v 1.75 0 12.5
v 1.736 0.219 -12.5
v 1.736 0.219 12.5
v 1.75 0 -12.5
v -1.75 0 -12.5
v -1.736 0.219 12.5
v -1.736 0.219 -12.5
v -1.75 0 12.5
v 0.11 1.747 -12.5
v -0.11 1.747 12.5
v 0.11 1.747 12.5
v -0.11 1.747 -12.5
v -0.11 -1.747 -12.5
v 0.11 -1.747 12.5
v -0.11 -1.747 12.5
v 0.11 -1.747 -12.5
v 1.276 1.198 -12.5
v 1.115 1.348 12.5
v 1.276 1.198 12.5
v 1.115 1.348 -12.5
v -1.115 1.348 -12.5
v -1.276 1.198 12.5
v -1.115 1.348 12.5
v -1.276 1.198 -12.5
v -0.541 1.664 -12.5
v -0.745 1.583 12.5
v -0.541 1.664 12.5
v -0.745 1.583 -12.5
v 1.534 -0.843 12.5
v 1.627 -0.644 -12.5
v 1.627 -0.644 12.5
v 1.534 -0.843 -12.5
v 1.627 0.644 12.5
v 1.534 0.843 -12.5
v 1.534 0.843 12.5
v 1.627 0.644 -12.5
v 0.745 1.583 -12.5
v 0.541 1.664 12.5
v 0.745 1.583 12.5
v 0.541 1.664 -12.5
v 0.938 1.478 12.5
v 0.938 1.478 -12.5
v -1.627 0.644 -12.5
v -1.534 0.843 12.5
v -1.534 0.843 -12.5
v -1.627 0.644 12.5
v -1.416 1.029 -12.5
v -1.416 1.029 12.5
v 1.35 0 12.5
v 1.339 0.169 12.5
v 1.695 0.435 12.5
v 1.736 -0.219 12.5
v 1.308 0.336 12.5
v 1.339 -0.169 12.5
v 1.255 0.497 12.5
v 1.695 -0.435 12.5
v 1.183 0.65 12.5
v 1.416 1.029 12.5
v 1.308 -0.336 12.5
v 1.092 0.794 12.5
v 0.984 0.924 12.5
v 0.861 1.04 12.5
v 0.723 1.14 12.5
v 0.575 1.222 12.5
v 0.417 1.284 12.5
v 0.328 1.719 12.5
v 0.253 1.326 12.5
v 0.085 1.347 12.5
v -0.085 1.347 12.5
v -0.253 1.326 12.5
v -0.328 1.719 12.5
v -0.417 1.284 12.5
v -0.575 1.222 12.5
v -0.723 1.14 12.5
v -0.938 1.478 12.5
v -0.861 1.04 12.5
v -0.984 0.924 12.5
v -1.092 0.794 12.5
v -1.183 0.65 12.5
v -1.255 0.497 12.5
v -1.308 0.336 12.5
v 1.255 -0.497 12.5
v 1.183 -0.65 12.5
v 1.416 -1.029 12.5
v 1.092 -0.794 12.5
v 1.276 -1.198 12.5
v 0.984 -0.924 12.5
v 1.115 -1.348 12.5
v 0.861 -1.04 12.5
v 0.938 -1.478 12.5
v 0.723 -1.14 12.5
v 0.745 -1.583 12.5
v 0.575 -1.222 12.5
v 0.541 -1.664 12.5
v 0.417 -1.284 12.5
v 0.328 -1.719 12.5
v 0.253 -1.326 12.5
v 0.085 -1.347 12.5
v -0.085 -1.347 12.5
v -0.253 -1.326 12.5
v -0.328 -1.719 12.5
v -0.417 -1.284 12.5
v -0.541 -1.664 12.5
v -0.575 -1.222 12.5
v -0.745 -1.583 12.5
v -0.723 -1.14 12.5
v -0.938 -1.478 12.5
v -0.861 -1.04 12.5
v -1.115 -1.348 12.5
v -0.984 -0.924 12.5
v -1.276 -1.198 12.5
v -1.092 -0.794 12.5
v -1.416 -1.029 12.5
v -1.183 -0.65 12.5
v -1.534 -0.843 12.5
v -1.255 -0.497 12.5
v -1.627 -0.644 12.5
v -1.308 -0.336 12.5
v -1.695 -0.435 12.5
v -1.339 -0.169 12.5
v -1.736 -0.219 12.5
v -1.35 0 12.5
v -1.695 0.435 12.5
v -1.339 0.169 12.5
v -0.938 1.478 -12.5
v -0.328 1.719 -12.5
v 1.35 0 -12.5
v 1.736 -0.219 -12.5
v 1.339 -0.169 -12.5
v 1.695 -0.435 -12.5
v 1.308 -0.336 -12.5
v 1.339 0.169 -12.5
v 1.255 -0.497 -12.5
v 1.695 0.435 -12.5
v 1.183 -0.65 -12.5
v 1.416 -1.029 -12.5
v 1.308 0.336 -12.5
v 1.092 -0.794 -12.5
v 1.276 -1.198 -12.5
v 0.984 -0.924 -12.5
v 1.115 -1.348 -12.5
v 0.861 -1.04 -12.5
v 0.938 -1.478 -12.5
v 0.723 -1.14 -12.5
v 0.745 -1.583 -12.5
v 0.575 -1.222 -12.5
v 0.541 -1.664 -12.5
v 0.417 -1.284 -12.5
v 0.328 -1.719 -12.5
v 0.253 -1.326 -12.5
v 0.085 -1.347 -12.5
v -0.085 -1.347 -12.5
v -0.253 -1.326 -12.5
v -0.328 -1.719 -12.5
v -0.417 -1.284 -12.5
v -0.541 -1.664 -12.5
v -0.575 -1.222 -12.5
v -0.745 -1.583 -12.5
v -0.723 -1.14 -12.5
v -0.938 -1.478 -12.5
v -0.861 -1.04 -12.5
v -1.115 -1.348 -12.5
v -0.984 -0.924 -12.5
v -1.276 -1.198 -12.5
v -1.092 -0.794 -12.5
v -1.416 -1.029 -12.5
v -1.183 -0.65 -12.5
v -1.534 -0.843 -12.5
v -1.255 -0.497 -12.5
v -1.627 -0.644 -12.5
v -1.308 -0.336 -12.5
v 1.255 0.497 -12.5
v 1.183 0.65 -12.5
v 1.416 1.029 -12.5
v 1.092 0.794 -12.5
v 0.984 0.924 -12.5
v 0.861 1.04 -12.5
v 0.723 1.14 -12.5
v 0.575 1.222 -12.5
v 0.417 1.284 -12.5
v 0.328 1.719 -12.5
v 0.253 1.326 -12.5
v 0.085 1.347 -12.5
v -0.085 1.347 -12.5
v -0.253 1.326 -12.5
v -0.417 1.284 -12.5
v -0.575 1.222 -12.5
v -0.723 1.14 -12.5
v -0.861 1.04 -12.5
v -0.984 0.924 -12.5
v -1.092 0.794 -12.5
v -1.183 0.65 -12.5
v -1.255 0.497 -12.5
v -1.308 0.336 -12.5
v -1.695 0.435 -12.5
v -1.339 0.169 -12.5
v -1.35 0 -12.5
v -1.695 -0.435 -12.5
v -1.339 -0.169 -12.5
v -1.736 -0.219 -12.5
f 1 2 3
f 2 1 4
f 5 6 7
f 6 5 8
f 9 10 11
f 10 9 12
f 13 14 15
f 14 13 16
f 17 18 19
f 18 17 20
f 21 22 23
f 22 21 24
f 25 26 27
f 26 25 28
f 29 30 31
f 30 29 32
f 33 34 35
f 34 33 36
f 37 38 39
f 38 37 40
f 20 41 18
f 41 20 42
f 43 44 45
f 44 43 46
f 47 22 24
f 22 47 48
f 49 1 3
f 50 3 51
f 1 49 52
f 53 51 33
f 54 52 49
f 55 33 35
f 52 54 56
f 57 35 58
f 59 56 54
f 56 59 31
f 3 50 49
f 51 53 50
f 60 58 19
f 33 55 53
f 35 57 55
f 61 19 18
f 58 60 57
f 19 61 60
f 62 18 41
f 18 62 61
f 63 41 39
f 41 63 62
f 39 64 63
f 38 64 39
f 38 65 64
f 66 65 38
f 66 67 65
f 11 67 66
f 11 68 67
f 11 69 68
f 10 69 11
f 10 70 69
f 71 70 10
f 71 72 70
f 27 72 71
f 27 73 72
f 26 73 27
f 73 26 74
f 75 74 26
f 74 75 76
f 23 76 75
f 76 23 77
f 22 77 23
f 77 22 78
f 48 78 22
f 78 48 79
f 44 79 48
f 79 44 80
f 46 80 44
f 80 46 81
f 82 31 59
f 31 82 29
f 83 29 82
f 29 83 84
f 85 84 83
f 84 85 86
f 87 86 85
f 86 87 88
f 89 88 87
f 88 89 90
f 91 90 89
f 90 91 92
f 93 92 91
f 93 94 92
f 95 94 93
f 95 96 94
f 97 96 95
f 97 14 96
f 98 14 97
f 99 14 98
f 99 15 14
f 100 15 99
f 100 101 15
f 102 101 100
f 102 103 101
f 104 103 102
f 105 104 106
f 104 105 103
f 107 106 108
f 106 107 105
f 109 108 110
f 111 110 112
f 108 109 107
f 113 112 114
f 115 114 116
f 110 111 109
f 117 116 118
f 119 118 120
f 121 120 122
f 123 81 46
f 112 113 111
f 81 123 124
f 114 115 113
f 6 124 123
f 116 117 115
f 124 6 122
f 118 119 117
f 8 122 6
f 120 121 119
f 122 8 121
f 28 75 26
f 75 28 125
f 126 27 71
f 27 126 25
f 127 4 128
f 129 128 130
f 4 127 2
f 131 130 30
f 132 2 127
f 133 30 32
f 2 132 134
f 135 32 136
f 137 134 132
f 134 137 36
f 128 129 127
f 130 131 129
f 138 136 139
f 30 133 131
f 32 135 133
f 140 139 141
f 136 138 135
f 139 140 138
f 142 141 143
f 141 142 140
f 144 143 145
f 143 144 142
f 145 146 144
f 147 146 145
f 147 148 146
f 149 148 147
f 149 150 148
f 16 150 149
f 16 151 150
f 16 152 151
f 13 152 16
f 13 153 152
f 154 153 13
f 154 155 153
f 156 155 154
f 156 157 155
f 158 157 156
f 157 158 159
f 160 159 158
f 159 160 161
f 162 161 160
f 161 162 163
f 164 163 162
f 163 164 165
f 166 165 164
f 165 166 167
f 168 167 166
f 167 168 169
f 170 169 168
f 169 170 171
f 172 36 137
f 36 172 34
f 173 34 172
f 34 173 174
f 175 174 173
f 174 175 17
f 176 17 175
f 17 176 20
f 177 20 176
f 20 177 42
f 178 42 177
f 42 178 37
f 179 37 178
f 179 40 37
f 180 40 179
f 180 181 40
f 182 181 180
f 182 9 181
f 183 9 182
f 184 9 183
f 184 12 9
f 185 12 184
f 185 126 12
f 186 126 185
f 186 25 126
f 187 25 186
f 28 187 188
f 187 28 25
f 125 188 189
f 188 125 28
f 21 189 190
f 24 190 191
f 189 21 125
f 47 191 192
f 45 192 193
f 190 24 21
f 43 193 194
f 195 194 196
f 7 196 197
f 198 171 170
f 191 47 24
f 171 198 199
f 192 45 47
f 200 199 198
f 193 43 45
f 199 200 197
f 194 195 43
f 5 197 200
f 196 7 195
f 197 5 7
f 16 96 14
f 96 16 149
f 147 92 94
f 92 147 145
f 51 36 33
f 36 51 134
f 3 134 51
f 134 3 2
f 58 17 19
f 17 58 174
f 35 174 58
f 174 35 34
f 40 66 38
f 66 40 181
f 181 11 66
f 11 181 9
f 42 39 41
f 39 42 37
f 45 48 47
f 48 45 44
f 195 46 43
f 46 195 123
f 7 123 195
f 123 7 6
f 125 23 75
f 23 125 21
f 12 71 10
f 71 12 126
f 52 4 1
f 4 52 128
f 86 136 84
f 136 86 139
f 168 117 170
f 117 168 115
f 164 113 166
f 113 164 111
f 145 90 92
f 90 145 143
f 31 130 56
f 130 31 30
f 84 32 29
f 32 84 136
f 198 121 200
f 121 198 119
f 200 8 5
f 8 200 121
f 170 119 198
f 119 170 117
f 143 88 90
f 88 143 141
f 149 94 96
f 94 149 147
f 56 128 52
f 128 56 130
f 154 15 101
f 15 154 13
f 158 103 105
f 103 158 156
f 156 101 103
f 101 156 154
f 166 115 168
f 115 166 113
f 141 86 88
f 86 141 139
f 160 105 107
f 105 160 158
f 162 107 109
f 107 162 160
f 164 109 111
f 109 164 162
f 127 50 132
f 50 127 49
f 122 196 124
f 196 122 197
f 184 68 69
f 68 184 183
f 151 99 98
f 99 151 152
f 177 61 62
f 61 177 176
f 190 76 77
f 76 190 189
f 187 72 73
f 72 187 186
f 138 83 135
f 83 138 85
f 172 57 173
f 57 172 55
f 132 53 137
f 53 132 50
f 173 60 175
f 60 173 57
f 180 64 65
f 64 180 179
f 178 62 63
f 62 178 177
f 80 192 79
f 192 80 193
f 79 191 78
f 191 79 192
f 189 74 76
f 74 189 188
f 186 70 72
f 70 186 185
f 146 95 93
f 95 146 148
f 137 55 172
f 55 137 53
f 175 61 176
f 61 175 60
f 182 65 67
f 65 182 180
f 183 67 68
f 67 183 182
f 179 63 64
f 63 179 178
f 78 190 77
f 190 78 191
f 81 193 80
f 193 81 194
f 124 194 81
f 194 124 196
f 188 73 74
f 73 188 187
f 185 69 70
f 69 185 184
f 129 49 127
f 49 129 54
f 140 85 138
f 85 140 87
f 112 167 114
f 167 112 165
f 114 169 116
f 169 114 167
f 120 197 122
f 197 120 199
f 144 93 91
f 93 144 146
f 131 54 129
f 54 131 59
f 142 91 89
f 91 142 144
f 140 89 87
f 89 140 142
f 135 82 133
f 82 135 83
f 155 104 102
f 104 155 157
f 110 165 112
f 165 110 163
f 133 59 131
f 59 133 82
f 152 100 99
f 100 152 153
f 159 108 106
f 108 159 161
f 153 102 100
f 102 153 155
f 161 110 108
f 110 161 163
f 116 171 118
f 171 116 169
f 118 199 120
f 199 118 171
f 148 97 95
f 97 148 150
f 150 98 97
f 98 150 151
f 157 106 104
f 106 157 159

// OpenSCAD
$fn = 50;


difference() {
	union() {
		translate(v = [0, 0, -12.5000000000]) {
			cylinder(h = 25, r = 1.7500000000);
		}
	}
	union() {
		translate(v = [0, 0, -100.0000000000]) {
			cylinder(h = 200, r = 1.3500000000);
		}
	}
}
